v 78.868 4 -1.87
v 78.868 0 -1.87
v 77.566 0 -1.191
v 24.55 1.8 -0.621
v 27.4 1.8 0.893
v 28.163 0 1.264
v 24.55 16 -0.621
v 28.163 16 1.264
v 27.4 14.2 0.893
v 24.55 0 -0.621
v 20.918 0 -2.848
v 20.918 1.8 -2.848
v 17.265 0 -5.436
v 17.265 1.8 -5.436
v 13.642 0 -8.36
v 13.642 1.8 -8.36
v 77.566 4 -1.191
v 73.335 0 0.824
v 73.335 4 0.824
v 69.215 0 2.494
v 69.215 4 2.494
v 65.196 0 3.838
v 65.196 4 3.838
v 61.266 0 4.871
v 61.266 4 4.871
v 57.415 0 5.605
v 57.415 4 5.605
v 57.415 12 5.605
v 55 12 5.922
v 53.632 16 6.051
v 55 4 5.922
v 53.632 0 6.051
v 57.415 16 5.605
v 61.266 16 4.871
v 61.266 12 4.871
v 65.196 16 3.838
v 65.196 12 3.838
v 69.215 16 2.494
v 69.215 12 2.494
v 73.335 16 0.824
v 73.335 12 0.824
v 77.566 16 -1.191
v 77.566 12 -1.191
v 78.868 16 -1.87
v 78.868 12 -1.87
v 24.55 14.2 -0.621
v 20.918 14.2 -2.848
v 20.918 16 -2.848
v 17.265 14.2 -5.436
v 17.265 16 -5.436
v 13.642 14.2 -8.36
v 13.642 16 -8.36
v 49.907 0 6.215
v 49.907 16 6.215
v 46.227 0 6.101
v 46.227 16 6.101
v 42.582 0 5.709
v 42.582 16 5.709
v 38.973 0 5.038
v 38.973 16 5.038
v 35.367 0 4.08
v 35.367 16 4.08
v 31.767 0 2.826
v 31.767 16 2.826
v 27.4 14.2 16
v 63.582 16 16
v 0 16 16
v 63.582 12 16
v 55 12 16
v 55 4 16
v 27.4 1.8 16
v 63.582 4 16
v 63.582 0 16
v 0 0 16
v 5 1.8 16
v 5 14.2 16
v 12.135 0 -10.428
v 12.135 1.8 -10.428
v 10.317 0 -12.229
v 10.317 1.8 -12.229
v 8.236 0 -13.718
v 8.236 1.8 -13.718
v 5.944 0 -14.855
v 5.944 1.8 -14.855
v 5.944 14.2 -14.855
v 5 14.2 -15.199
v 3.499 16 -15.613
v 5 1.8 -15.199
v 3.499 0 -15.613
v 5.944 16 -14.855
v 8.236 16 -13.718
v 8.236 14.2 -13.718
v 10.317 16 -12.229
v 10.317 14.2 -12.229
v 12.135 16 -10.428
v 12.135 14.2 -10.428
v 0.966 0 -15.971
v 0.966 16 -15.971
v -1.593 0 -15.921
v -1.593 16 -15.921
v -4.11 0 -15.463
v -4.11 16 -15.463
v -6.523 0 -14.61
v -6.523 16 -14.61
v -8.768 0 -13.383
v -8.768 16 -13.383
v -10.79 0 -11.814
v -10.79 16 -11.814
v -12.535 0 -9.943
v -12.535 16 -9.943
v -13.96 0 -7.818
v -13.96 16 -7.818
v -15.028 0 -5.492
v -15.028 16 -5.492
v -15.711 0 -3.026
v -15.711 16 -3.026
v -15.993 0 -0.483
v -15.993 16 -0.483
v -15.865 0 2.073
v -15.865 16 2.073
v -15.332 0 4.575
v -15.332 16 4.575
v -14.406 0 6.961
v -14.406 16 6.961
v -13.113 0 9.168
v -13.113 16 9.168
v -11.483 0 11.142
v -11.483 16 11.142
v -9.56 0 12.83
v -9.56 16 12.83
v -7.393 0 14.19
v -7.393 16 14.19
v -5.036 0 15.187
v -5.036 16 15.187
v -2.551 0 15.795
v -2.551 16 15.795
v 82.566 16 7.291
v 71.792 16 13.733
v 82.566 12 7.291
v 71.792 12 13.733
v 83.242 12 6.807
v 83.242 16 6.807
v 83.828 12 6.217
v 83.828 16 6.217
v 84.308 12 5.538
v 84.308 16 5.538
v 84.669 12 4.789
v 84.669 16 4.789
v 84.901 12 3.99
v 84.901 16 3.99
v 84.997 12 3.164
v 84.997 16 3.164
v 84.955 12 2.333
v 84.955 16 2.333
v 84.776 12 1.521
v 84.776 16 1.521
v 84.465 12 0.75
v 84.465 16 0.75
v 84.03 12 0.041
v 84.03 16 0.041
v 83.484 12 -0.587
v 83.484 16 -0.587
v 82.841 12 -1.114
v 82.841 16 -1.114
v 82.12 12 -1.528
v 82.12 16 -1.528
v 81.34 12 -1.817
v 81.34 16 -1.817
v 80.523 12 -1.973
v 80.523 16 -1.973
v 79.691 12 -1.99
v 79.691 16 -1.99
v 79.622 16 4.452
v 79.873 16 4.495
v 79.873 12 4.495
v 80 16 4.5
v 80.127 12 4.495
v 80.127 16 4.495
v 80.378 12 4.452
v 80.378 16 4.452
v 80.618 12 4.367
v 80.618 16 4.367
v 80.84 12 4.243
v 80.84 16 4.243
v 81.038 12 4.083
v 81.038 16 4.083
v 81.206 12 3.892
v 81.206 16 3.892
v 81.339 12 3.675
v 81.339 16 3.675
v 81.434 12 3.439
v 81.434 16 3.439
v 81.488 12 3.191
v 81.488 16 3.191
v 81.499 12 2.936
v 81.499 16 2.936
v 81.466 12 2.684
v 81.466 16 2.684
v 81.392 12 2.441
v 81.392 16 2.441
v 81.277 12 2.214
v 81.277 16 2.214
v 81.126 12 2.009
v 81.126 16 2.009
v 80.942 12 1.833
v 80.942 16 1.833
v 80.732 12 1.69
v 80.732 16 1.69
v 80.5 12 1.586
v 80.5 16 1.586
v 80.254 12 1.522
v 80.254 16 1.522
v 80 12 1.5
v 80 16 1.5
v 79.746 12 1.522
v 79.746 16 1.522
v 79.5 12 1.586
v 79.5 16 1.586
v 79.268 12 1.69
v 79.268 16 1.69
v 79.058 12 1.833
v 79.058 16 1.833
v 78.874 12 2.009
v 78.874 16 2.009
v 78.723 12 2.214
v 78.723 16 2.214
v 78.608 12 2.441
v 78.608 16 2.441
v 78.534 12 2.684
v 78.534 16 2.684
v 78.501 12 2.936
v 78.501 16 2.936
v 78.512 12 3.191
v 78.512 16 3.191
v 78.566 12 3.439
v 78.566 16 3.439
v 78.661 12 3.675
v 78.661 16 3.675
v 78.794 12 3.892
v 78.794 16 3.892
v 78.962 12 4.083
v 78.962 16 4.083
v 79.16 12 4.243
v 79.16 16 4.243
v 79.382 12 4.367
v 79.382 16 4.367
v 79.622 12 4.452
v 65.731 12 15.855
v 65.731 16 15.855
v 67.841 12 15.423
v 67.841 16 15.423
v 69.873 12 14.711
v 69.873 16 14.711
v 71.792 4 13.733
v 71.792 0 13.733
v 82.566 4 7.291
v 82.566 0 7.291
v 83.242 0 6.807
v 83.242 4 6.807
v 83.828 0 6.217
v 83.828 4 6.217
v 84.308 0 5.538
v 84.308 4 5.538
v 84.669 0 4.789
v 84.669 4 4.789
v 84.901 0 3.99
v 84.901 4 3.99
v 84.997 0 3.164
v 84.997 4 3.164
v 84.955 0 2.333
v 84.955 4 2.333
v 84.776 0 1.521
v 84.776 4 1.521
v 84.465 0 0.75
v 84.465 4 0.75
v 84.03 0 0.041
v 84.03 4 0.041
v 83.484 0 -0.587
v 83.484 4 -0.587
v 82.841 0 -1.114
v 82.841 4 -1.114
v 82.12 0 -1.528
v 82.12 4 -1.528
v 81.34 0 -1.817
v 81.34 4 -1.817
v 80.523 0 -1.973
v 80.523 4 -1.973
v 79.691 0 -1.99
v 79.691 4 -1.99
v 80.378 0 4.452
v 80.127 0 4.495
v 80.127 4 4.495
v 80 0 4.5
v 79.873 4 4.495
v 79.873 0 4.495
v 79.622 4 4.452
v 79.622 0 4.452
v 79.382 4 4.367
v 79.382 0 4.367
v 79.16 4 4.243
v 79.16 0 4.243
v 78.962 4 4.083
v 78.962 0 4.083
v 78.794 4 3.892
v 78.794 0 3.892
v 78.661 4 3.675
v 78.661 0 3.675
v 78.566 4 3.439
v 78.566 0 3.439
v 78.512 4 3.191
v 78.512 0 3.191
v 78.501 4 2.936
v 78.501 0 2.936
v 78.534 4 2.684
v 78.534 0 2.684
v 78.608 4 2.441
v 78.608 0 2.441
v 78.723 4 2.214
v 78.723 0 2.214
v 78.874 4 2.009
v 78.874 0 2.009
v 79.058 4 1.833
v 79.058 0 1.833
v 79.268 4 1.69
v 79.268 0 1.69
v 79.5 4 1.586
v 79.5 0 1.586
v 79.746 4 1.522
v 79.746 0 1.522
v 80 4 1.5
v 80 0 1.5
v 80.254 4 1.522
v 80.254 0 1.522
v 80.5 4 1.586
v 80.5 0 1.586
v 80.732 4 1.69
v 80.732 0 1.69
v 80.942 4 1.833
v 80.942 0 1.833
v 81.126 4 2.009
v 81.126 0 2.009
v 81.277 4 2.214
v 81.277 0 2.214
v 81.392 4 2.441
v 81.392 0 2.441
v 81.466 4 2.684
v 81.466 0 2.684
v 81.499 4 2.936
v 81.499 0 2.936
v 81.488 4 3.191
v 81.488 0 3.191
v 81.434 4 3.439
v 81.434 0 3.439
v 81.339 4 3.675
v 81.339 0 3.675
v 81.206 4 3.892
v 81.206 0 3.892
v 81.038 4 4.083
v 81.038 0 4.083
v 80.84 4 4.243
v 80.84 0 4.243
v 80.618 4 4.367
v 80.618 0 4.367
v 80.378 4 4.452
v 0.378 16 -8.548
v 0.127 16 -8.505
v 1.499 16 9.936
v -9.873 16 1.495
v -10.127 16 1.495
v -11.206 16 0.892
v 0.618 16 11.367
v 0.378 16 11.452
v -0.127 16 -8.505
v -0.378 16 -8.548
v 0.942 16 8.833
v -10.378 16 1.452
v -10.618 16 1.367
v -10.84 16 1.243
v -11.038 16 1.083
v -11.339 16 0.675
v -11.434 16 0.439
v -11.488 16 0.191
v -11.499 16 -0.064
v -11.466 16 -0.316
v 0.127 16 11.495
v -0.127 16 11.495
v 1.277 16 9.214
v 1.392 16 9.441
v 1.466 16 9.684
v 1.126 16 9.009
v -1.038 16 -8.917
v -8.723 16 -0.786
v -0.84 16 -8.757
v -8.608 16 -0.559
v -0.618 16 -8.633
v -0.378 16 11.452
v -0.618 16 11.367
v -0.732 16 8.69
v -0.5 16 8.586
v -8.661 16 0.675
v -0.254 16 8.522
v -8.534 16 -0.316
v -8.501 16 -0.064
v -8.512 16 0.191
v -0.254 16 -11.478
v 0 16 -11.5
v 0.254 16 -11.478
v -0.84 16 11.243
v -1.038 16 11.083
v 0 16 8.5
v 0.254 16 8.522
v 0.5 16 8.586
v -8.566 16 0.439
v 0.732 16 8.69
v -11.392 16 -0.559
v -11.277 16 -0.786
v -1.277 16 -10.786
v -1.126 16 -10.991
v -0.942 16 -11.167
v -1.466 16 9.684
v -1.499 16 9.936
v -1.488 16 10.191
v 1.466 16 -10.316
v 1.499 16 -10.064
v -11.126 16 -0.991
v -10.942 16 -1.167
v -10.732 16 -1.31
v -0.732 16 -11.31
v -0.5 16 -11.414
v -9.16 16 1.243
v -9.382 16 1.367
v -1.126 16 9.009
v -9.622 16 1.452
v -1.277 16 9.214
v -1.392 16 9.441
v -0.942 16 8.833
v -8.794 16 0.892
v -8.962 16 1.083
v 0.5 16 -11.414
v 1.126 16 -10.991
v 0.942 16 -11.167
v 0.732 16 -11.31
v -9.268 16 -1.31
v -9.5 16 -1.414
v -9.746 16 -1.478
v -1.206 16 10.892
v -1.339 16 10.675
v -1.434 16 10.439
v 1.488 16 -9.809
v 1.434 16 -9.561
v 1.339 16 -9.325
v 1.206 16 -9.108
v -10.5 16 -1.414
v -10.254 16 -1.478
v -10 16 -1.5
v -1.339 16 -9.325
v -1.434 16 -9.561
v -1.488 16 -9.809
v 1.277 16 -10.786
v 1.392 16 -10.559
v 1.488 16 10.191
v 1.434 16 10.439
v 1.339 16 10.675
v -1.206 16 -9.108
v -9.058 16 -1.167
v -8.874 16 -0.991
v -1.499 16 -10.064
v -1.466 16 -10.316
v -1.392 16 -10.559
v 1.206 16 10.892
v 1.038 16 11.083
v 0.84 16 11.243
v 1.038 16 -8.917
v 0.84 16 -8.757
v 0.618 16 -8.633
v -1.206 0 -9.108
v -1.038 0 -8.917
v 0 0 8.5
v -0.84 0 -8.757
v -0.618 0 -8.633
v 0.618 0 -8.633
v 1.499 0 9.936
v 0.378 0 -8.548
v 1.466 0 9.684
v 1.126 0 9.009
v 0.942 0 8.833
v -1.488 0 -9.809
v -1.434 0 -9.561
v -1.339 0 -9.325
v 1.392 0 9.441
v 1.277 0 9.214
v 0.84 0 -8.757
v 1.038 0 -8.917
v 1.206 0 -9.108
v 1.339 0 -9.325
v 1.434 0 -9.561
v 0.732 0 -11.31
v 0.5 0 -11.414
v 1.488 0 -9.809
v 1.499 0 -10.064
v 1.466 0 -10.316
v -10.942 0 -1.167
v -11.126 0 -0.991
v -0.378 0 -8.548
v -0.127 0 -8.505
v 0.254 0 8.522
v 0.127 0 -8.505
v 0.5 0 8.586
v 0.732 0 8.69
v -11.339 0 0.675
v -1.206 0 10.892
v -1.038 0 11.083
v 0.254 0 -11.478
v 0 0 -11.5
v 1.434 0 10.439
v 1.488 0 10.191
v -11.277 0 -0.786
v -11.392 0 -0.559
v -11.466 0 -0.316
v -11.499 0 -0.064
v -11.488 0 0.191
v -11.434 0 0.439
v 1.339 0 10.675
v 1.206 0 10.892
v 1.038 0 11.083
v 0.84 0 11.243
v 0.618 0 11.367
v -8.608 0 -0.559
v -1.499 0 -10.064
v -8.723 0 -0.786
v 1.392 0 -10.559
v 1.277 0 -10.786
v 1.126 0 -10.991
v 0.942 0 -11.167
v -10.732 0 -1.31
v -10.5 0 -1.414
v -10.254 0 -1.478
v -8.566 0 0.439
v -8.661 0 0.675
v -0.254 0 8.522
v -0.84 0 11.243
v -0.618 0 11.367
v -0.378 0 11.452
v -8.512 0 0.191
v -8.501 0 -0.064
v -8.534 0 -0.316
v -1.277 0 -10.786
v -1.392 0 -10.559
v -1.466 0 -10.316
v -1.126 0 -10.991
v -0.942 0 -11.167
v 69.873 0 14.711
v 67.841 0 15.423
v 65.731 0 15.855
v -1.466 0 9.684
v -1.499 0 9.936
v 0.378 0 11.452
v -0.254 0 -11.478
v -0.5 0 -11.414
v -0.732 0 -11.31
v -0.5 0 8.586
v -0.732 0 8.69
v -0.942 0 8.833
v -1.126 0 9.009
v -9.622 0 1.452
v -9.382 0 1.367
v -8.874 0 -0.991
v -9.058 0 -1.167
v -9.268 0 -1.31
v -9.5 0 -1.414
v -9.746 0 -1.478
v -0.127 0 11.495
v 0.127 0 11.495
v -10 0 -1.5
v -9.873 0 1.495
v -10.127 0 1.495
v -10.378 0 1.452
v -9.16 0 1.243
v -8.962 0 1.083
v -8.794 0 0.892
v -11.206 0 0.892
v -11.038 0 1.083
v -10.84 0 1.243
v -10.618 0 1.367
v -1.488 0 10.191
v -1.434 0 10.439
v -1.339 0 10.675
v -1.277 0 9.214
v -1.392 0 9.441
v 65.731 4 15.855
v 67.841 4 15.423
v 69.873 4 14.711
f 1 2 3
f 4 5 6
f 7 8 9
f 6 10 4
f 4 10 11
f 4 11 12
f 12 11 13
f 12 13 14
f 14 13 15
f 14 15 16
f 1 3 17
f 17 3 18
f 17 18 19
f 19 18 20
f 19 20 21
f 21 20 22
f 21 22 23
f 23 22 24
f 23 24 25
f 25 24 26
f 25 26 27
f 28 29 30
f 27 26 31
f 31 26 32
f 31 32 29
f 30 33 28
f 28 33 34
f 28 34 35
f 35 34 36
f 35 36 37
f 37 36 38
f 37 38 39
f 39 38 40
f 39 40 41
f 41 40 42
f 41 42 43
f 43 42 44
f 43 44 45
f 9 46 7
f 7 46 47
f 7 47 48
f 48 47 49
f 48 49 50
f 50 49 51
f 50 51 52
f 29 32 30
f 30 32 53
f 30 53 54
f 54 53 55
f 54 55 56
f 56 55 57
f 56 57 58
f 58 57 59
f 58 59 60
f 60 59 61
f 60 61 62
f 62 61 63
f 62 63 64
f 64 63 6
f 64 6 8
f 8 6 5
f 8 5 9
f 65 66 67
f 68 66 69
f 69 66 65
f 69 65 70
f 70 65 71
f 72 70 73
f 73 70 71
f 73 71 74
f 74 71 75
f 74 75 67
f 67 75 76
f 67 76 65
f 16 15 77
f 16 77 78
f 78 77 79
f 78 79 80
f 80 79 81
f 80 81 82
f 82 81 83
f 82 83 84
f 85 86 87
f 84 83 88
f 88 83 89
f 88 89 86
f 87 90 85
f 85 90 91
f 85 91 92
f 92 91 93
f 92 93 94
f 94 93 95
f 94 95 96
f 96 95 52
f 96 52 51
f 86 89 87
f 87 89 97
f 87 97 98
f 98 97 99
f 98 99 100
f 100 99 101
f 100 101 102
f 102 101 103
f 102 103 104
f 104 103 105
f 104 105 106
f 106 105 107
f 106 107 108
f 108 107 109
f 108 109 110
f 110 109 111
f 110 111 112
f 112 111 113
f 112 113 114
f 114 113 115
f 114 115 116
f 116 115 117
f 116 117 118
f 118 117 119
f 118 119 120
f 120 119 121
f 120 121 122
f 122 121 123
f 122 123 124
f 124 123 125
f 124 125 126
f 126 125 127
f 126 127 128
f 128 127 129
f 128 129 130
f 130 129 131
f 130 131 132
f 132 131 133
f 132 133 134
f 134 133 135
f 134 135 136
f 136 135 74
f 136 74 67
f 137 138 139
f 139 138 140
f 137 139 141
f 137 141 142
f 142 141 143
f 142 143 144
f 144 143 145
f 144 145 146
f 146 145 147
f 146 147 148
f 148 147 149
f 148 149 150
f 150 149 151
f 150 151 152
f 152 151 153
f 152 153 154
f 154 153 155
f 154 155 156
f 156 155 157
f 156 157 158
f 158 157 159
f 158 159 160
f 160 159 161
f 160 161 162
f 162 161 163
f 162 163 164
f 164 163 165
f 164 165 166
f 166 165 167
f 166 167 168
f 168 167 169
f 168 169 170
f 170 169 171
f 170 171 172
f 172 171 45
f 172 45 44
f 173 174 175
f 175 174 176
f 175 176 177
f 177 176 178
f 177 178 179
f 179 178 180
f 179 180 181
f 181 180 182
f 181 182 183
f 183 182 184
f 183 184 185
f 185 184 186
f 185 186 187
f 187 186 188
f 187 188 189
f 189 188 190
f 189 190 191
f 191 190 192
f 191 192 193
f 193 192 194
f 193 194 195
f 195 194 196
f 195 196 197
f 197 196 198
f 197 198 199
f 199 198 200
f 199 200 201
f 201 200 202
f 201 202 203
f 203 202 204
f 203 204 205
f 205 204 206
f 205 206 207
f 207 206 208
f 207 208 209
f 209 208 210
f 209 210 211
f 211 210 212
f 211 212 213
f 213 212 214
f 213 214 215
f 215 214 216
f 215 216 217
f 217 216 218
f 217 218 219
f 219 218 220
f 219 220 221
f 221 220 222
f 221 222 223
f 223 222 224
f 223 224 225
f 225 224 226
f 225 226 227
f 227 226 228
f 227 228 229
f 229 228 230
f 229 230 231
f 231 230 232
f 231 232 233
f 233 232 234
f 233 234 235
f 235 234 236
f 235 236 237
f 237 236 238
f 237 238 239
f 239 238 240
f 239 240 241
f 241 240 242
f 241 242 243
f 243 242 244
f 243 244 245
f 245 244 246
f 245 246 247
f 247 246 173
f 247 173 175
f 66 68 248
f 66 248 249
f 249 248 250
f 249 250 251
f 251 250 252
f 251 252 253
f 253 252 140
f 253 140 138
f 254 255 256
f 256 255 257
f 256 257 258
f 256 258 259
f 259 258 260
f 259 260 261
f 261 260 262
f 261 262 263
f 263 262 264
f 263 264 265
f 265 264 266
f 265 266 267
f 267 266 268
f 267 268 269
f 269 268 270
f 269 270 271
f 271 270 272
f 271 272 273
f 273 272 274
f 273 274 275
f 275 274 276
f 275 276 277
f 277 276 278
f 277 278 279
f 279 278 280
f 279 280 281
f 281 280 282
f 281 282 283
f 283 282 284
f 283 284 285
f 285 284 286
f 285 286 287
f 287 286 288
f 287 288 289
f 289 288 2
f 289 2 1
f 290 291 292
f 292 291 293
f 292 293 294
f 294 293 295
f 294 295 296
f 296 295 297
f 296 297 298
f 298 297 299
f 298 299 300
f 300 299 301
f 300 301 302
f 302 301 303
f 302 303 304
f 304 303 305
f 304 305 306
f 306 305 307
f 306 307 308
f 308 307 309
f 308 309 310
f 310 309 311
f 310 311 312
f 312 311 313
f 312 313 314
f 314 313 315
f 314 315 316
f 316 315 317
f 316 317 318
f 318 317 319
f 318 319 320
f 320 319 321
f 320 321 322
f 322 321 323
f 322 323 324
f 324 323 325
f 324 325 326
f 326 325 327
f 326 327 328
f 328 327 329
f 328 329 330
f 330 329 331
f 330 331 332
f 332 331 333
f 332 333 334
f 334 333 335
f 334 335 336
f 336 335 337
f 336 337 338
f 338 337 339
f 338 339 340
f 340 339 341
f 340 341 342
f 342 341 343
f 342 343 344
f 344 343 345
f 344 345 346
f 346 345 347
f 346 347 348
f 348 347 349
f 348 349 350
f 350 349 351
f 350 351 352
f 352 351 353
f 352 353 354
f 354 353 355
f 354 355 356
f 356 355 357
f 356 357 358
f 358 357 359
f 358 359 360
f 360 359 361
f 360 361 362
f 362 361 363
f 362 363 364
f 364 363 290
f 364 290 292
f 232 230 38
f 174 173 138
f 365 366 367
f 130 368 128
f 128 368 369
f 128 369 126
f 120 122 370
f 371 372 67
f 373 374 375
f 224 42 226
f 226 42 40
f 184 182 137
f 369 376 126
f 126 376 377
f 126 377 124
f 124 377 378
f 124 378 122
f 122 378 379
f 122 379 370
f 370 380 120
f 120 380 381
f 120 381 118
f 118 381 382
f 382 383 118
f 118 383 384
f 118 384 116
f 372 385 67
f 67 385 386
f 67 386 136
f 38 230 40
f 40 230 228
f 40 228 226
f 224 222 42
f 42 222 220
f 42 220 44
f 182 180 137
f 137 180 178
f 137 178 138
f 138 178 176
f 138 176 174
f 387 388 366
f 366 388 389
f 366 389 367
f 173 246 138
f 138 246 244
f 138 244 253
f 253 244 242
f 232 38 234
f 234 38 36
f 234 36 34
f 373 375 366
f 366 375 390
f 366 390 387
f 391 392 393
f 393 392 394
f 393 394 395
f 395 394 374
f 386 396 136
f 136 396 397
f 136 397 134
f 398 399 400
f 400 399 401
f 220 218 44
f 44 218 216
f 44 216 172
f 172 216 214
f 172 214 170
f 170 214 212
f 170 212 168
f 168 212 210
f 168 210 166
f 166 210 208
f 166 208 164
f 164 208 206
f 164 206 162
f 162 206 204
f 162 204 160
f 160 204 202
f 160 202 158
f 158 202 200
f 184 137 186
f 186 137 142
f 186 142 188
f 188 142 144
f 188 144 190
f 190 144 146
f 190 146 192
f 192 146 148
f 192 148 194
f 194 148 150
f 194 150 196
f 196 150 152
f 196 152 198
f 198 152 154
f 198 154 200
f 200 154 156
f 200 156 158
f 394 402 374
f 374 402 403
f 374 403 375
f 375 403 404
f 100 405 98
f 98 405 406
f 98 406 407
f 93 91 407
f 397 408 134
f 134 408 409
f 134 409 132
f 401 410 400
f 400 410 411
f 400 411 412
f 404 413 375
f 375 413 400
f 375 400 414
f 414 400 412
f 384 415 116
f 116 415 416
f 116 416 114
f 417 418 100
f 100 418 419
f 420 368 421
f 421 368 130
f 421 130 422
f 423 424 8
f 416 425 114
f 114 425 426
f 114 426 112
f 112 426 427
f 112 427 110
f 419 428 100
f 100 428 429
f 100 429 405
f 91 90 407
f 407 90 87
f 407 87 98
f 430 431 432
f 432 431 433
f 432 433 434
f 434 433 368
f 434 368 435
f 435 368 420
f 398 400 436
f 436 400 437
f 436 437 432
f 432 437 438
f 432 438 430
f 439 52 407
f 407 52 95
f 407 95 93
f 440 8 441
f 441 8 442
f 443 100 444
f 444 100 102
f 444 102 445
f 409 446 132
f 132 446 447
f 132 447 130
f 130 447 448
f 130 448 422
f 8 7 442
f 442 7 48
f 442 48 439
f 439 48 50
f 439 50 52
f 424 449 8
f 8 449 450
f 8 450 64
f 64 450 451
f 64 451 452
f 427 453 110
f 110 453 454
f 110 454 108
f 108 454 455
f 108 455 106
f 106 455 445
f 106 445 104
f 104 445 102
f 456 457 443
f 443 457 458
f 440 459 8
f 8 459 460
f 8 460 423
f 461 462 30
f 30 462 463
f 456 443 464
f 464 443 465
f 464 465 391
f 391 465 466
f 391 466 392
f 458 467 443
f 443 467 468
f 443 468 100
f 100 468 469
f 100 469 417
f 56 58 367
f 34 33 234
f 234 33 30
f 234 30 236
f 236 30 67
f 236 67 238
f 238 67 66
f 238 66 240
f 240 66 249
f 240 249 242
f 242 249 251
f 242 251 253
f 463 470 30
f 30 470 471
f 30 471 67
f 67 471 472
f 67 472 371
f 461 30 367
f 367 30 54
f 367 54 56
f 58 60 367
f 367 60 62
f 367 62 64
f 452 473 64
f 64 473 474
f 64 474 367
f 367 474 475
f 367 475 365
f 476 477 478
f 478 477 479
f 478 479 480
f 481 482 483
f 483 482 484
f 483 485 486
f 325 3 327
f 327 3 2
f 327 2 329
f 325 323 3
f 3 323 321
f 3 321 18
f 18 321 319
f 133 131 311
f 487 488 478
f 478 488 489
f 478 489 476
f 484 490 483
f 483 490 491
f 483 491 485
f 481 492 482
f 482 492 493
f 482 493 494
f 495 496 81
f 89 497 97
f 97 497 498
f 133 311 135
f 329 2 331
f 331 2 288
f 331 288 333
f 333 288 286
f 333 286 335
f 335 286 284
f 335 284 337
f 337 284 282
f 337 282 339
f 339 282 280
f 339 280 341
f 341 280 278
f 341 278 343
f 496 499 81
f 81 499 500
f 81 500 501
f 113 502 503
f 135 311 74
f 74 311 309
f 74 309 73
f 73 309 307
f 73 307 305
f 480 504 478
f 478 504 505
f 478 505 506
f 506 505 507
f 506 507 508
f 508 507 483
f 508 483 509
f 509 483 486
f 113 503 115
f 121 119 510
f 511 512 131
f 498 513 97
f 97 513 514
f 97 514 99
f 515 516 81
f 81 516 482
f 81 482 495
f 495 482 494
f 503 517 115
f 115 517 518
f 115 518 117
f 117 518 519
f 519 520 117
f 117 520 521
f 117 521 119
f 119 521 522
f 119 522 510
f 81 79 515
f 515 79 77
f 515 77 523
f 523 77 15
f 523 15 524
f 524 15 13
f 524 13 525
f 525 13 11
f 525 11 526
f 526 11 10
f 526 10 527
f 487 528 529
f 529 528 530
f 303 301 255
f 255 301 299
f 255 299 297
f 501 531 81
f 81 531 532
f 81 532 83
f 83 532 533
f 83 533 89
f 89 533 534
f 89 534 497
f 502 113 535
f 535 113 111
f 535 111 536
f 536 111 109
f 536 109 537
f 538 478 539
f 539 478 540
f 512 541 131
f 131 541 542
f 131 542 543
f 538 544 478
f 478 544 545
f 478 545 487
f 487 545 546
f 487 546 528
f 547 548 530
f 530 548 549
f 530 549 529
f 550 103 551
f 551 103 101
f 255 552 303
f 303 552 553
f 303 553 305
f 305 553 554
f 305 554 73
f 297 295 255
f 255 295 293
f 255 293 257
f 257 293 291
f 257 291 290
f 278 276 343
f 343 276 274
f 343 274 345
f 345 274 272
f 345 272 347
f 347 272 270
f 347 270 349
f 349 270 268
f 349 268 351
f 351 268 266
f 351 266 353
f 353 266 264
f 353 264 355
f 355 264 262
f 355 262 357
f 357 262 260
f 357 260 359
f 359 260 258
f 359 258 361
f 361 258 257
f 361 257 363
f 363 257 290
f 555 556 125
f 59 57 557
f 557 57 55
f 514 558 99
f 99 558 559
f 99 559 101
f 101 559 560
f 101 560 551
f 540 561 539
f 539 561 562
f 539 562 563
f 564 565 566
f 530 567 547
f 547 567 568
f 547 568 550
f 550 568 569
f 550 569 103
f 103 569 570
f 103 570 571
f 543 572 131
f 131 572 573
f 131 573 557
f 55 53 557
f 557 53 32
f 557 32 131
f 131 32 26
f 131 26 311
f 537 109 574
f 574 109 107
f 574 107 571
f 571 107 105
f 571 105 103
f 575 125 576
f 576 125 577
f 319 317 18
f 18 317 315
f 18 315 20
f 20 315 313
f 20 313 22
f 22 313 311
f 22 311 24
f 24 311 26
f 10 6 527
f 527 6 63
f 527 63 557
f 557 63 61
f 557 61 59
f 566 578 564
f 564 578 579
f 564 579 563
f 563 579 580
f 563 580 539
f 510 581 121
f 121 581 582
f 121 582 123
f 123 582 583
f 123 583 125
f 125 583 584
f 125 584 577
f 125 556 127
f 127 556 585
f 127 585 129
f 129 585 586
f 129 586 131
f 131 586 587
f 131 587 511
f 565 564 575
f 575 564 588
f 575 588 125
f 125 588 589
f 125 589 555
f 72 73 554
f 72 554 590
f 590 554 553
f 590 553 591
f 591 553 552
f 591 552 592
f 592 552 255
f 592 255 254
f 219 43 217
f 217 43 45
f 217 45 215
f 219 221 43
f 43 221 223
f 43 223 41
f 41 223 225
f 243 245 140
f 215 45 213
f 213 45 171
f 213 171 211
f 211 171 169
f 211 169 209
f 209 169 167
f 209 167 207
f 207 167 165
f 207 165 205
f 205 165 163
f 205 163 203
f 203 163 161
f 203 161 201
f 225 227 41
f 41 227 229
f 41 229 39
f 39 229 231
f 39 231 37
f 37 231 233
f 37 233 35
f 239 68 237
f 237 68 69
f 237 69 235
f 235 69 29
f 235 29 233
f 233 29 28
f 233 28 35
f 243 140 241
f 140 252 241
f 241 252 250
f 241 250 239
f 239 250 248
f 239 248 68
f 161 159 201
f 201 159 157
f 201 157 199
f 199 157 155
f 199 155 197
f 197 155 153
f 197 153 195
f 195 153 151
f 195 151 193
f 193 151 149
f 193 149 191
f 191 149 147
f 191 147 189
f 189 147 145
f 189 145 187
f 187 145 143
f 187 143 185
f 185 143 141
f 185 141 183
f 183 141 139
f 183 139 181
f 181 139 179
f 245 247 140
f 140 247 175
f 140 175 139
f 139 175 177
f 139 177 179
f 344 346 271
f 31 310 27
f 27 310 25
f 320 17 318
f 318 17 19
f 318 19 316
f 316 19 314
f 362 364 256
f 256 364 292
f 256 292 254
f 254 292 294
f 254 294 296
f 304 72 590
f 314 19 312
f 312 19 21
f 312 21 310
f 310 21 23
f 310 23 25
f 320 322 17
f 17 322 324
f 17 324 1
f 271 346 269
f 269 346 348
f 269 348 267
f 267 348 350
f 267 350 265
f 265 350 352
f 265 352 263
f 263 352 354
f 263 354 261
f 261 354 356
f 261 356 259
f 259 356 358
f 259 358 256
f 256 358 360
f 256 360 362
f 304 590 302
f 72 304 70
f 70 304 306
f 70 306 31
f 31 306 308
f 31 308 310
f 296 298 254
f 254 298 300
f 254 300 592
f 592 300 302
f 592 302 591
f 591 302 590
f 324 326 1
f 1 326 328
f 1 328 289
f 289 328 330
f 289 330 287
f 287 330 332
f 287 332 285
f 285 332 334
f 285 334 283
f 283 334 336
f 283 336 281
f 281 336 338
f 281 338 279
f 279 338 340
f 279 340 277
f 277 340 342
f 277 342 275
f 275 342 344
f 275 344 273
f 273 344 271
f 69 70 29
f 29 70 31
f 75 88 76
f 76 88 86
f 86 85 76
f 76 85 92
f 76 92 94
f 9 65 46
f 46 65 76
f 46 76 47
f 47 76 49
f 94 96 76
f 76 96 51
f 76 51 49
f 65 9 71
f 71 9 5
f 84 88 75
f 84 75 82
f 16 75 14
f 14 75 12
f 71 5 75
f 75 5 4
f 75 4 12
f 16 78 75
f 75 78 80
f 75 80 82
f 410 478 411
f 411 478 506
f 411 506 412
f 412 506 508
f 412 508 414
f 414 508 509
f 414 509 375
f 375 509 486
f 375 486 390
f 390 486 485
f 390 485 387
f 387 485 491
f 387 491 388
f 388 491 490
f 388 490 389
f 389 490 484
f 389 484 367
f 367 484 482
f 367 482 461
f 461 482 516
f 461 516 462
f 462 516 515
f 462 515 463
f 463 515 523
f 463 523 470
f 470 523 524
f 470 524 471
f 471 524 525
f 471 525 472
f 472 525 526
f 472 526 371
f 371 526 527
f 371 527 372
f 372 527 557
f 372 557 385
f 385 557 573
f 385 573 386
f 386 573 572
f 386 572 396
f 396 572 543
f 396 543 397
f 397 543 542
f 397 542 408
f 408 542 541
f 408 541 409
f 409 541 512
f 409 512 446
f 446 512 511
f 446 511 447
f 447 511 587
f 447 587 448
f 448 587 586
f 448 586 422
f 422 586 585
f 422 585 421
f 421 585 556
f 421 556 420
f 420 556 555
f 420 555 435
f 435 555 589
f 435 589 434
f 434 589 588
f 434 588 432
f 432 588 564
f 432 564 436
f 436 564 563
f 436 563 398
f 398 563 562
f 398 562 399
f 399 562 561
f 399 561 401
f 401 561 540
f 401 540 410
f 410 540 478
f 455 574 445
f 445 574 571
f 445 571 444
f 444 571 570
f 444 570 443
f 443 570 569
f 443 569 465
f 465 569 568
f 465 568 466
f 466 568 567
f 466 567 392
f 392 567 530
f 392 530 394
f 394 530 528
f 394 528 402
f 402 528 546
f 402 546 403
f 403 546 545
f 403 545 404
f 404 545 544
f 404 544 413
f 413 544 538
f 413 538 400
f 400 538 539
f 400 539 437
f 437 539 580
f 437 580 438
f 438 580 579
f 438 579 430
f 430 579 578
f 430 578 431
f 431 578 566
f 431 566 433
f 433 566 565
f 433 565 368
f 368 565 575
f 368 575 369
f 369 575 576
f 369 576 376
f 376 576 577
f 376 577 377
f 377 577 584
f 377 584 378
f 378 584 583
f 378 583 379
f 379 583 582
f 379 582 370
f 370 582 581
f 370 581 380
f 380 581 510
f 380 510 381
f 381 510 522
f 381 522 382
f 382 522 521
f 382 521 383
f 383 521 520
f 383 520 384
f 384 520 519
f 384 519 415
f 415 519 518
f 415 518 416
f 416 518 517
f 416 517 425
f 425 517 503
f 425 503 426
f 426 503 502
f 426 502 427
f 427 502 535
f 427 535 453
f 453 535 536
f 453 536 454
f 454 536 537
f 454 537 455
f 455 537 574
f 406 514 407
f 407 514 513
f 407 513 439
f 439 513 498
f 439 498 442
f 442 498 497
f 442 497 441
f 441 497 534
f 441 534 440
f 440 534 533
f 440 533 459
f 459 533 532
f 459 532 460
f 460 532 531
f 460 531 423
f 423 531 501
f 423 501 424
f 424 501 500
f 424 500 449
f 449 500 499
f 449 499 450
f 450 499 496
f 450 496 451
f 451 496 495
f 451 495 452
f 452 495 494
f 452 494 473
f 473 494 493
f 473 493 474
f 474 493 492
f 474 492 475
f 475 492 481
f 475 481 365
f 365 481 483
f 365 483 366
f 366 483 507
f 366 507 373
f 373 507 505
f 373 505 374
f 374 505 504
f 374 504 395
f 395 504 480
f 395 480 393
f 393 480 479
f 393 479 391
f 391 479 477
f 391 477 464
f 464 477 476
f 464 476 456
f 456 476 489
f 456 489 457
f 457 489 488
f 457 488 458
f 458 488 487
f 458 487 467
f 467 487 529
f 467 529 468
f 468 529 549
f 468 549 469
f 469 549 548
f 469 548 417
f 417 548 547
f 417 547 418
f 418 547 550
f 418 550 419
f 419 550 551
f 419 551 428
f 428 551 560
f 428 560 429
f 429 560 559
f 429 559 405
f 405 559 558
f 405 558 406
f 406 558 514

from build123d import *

# Parameters (mm, degrees)
SKETCH1_R           = 1.5
BOSS_EXTRUDE2_DEPTH = 16
FILLET1_R           = 16
SKETCH2_W           = 30
SKETCH2_H           = 8
CUT_EXTRUDE2_DEPTH  = 93.222557038
SKETCH3_W           = 22.4
SKETCH3_H           = 12.4
CUT_EXTRUDE3_DEPTH  = 93.222557038
SKETCH4_R           = 1.5
CUT_EXTRUDE4_DEPTH  = 88.960218414


with BuildPart() as part:
    # Sketch1 → Boss-Extrude2 (new body)
    with BuildSketch(Plane(origin=(0, 0, 0), x_dir=(1, 0, 0), z_dir=(0, 1, 0))):
        with BuildLine():
            Line((0, -16), (68, -16))
            Line((68, -16), (82.565771817, -7.291481677))
            ThreePointArc((82.565771817, -7.291481677), (84.636633862, -1.128736675), (78.868265673, 1.870233815))
            add(Edge.make_bspline(
                [(78.868265673, 1.870233815), (43.304736125, -17.072492838), (13.642052319, 8.360287586)],
                knots=[0.972219652, 0.972219652, 0.972219652, 1.878474777, 1.878474777, 1.878474777], degree=2))
            ThreePointArc((13.642052319, 8.360287586), (-13.960025096, 7.817780971), (0, -16))
        make_face()
        with Locations(Location((80, -3, 0), (0, 0, 270))):
            Circle(SKETCH1_R, mode=Mode.SUBTRACT)
    extrude(amount=BOSS_EXTRUDE2_DEPTH)

    # Fillet1
    fillet1_edges = [part.edges().sort_by_distance(p)[0] for p in [
        (68, 8, 16),
    ]]
    fillet(fillet1_edges, radius=FILLET1_R)

    # Sketch2 → Cut-Extrude2 (cut, through all)
    with BuildSketch(Plane.XY.offset(16)):
        with Locations((70, 8)):
            Rectangle(SKETCH2_W, SKETCH2_H)
    extrude(amount=-CUT_EXTRUDE2_DEPTH, mode=Mode.SUBTRACT)

    # Sketch3 → Cut-Extrude3 (cut, through all)
    with BuildSketch(Plane.XY.offset(16)):
        with Locations((16.2, 8)):
            Rectangle(SKETCH3_W, SKETCH3_H)
    extrude(amount=-CUT_EXTRUDE3_DEPTH, mode=Mode.SUBTRACT)

    # Sketch4 → Cut-Extrude4 (cut, through all)
    with BuildSketch(Plane.XZ):
        with Locations(Location((0, -10, 0), (0, 0, 270))):
            Circle(SKETCH4_R)
        with Locations(Location((-10, 0, 0), (0, 0, 270))):
            Circle(SKETCH4_R)
        with Locations(Location((0, 10, 0), (0, 0, 270))):
            Circle(SKETCH4_R)
    extrude(amount=-CUT_EXTRUDE4_DEPTH, mode=Mode.SUBTRACT)


solid = part.part
